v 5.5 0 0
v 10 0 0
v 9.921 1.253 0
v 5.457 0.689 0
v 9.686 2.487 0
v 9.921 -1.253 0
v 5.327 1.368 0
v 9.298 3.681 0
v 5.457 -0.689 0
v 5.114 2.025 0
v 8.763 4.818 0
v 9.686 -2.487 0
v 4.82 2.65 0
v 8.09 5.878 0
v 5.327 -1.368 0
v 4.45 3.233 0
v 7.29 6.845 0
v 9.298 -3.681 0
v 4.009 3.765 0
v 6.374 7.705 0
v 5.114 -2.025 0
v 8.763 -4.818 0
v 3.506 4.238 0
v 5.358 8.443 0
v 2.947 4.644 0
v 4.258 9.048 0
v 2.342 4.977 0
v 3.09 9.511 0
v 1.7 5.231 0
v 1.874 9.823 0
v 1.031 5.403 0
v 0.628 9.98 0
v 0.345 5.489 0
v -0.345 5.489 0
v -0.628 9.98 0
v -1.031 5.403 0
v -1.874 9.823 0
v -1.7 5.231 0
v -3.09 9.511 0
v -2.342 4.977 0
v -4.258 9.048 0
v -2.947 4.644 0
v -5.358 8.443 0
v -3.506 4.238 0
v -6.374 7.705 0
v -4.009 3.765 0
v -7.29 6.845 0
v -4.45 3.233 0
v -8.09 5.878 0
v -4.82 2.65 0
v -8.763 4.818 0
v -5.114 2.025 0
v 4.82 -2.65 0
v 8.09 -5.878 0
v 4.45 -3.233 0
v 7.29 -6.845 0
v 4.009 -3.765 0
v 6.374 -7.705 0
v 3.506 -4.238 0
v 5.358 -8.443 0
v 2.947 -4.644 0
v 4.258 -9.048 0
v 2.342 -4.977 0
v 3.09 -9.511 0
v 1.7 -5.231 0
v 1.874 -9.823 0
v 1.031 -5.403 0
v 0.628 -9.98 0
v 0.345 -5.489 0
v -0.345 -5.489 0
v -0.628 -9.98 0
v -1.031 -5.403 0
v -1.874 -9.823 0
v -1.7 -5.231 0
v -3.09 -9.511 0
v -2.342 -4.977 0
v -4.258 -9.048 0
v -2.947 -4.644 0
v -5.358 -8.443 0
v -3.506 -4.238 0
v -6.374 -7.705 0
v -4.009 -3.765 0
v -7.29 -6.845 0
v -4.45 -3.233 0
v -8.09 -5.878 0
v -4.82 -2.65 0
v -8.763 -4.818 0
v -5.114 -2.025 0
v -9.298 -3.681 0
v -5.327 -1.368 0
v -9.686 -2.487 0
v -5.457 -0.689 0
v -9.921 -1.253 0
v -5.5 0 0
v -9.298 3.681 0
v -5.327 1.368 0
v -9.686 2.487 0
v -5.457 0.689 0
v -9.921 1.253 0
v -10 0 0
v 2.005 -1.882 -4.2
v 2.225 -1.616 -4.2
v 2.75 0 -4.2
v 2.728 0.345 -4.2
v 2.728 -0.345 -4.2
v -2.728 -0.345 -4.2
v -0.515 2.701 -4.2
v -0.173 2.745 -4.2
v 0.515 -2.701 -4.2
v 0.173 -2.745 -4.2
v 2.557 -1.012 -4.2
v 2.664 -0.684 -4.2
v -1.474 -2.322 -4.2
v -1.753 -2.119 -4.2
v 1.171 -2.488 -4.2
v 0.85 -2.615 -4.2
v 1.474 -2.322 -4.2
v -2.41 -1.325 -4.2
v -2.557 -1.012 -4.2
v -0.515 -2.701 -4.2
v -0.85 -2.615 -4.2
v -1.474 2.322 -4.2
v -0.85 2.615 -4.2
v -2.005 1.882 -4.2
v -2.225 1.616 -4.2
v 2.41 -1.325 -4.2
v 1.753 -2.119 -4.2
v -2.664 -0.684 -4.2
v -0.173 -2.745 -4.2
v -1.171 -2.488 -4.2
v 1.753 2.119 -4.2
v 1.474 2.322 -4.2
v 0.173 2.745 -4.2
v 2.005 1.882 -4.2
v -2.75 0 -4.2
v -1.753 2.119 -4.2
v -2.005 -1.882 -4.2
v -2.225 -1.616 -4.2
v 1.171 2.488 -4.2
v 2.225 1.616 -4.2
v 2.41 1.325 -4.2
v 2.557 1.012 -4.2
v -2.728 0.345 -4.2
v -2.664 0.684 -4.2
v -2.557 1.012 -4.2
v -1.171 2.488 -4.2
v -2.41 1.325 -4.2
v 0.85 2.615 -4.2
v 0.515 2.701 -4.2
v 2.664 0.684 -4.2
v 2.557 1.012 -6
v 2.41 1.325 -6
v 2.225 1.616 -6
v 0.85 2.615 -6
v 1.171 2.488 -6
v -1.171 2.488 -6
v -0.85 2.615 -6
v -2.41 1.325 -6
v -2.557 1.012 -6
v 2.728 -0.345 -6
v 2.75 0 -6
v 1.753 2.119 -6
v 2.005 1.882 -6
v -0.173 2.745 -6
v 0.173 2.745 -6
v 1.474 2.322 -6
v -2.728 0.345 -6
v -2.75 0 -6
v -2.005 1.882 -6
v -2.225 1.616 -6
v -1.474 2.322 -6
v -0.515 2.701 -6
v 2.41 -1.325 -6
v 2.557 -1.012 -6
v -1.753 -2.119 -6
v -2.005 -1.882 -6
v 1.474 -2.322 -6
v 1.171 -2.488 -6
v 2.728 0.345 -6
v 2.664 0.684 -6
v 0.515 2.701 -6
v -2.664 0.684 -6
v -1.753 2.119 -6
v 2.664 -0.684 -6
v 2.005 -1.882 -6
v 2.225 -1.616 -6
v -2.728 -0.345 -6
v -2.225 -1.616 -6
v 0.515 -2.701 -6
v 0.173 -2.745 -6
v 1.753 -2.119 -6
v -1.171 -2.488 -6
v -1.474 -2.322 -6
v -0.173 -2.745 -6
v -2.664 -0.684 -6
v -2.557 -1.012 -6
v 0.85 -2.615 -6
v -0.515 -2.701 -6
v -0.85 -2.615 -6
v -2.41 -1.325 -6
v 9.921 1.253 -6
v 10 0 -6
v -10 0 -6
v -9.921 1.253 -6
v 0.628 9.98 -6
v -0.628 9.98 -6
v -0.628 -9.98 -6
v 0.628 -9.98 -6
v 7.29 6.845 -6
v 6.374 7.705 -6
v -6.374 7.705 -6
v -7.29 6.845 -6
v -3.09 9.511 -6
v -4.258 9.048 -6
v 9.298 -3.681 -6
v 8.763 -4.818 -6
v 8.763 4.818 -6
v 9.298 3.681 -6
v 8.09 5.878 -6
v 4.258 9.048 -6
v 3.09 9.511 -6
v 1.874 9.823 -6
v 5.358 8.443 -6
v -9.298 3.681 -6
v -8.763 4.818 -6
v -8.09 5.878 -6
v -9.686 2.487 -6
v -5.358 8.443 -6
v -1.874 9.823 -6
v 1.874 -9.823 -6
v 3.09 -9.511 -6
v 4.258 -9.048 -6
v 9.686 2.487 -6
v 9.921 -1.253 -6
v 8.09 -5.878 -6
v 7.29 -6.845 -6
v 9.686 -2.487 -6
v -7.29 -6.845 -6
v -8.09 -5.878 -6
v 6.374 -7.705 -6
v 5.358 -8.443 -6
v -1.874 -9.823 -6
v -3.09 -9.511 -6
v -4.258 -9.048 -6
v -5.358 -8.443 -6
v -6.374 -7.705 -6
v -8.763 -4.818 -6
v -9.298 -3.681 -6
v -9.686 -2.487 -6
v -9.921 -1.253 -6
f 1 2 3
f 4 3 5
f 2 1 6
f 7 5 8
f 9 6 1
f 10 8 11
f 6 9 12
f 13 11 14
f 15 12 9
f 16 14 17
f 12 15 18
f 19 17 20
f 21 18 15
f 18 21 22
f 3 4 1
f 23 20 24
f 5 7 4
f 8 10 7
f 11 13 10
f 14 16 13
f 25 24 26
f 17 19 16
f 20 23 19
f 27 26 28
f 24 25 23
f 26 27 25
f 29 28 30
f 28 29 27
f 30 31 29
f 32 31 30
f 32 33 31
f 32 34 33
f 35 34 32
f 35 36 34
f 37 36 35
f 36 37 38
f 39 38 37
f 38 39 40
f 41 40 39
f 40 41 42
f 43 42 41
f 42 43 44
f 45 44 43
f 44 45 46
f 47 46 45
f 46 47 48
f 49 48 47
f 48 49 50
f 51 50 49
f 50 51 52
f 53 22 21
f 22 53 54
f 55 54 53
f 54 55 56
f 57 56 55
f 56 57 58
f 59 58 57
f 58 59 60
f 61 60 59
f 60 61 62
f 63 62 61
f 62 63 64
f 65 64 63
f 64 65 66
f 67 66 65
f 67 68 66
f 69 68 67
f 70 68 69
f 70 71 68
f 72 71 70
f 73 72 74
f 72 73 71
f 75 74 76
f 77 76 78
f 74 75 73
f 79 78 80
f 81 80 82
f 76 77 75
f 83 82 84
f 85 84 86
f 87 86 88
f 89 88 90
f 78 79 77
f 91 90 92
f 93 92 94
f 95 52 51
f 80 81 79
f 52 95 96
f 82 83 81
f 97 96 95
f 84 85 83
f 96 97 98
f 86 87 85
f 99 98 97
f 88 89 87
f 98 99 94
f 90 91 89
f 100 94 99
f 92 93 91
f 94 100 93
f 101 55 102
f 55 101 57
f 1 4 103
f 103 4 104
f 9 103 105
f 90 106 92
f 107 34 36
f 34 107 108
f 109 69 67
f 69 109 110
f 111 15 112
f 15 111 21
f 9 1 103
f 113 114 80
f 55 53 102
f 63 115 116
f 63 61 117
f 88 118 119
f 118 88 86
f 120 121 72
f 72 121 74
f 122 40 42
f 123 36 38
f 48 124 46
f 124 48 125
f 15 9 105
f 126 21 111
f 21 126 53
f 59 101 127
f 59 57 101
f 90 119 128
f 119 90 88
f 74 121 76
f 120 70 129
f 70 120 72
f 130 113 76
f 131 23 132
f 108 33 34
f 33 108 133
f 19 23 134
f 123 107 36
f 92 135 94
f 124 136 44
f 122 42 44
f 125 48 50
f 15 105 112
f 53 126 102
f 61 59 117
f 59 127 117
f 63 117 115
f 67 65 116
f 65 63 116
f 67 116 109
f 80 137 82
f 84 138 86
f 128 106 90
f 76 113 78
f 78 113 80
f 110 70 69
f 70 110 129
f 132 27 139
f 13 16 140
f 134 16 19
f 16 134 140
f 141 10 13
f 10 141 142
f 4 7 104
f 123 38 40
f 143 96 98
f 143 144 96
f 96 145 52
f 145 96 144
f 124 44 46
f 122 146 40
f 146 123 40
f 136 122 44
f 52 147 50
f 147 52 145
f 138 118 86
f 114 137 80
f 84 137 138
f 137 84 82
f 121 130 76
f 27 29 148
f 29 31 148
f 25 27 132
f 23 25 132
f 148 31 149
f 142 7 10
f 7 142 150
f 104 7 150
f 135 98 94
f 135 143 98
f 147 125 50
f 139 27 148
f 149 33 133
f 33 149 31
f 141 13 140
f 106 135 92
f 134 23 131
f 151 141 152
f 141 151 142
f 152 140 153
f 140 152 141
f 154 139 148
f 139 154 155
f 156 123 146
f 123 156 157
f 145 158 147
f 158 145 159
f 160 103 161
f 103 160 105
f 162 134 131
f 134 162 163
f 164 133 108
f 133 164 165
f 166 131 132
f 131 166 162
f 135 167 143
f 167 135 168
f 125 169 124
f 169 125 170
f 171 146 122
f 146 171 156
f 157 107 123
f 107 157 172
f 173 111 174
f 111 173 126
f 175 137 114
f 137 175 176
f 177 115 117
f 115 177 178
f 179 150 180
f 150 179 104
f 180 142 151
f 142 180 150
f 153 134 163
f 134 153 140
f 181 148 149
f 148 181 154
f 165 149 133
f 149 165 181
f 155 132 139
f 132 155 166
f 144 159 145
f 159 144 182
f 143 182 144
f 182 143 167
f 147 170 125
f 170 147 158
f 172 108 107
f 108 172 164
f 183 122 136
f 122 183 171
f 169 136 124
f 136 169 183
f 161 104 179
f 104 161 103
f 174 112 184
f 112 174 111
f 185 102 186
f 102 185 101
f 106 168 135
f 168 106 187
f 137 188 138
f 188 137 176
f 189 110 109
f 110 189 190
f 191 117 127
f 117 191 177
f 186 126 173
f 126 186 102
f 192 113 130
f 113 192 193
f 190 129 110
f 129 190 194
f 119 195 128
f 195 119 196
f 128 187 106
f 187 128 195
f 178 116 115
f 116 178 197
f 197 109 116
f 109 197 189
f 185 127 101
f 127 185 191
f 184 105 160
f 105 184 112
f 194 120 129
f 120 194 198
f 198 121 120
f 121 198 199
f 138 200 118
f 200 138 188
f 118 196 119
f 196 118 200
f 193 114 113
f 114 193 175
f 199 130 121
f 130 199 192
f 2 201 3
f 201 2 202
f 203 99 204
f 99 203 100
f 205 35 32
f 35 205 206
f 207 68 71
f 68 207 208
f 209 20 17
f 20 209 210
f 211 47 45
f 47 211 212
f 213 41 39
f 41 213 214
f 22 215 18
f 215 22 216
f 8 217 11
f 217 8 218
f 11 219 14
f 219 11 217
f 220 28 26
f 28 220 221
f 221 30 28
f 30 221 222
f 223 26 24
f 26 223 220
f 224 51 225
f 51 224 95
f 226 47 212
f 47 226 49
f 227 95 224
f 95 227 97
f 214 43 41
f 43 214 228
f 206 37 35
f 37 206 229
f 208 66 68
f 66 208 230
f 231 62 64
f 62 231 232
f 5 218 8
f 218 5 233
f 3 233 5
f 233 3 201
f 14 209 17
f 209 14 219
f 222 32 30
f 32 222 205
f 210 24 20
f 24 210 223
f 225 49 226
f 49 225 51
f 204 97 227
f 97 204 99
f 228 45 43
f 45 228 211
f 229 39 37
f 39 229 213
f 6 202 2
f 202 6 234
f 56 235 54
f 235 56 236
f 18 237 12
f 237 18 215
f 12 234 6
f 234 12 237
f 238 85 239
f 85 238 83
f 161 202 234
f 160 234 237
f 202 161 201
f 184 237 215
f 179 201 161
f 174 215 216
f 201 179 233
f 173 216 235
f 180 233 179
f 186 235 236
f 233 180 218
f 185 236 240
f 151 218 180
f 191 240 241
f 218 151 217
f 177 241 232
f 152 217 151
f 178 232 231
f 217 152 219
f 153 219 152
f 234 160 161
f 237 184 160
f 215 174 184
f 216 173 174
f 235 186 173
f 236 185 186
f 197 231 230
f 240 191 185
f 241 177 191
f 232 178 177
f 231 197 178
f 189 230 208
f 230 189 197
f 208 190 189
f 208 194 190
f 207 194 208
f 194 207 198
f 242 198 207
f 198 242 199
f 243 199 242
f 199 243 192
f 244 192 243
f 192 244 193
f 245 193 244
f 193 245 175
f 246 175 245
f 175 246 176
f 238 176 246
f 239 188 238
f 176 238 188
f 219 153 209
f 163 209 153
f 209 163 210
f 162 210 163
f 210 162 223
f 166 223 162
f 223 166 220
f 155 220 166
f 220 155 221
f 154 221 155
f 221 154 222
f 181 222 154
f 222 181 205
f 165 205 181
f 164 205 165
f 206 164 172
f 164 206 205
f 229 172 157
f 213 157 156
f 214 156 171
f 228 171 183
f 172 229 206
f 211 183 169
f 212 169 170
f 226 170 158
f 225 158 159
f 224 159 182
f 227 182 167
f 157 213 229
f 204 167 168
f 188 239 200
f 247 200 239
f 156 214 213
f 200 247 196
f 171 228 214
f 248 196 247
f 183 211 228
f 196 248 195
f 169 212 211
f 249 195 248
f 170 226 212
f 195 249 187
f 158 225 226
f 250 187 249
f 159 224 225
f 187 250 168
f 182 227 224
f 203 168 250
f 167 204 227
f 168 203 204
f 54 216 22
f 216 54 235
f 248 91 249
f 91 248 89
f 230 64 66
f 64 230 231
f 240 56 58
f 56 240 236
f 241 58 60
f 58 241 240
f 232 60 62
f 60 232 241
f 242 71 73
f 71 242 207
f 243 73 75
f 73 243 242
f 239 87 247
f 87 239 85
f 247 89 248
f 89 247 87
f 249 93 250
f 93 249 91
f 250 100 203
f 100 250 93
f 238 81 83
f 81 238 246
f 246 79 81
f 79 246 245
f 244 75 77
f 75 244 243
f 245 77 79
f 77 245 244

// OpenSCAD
$fn = 50;

difference() {
	union() {
		translate(v = [0, 0, -6.0]) {
			cylinder(h = 6, r = 10.0);
		}
	}
	union() {
		translate(v = [0, 0, 0]) {
			rotate(a = [0, 0, 0]) {
				difference() {
					union() {
						translate(v = [0, 0, -9.0]) {
							cylinder(h = 9, r = 2.25);
						}
						translate(v = [0, 0, -4.2]) {
							cylinder(h = 4.2, r1 = 2.75, r2 = 5.5);
						}
						translate(v = [0, 0, -9.0]) {
							cylinder(h = 9, r = 2.75);
						}
						translate(v = [0, 0, -9.0]) {
							cylinder(h = 9, r = 2.25);
						}
					}
					union();
				}
			}
		}
	}
}
